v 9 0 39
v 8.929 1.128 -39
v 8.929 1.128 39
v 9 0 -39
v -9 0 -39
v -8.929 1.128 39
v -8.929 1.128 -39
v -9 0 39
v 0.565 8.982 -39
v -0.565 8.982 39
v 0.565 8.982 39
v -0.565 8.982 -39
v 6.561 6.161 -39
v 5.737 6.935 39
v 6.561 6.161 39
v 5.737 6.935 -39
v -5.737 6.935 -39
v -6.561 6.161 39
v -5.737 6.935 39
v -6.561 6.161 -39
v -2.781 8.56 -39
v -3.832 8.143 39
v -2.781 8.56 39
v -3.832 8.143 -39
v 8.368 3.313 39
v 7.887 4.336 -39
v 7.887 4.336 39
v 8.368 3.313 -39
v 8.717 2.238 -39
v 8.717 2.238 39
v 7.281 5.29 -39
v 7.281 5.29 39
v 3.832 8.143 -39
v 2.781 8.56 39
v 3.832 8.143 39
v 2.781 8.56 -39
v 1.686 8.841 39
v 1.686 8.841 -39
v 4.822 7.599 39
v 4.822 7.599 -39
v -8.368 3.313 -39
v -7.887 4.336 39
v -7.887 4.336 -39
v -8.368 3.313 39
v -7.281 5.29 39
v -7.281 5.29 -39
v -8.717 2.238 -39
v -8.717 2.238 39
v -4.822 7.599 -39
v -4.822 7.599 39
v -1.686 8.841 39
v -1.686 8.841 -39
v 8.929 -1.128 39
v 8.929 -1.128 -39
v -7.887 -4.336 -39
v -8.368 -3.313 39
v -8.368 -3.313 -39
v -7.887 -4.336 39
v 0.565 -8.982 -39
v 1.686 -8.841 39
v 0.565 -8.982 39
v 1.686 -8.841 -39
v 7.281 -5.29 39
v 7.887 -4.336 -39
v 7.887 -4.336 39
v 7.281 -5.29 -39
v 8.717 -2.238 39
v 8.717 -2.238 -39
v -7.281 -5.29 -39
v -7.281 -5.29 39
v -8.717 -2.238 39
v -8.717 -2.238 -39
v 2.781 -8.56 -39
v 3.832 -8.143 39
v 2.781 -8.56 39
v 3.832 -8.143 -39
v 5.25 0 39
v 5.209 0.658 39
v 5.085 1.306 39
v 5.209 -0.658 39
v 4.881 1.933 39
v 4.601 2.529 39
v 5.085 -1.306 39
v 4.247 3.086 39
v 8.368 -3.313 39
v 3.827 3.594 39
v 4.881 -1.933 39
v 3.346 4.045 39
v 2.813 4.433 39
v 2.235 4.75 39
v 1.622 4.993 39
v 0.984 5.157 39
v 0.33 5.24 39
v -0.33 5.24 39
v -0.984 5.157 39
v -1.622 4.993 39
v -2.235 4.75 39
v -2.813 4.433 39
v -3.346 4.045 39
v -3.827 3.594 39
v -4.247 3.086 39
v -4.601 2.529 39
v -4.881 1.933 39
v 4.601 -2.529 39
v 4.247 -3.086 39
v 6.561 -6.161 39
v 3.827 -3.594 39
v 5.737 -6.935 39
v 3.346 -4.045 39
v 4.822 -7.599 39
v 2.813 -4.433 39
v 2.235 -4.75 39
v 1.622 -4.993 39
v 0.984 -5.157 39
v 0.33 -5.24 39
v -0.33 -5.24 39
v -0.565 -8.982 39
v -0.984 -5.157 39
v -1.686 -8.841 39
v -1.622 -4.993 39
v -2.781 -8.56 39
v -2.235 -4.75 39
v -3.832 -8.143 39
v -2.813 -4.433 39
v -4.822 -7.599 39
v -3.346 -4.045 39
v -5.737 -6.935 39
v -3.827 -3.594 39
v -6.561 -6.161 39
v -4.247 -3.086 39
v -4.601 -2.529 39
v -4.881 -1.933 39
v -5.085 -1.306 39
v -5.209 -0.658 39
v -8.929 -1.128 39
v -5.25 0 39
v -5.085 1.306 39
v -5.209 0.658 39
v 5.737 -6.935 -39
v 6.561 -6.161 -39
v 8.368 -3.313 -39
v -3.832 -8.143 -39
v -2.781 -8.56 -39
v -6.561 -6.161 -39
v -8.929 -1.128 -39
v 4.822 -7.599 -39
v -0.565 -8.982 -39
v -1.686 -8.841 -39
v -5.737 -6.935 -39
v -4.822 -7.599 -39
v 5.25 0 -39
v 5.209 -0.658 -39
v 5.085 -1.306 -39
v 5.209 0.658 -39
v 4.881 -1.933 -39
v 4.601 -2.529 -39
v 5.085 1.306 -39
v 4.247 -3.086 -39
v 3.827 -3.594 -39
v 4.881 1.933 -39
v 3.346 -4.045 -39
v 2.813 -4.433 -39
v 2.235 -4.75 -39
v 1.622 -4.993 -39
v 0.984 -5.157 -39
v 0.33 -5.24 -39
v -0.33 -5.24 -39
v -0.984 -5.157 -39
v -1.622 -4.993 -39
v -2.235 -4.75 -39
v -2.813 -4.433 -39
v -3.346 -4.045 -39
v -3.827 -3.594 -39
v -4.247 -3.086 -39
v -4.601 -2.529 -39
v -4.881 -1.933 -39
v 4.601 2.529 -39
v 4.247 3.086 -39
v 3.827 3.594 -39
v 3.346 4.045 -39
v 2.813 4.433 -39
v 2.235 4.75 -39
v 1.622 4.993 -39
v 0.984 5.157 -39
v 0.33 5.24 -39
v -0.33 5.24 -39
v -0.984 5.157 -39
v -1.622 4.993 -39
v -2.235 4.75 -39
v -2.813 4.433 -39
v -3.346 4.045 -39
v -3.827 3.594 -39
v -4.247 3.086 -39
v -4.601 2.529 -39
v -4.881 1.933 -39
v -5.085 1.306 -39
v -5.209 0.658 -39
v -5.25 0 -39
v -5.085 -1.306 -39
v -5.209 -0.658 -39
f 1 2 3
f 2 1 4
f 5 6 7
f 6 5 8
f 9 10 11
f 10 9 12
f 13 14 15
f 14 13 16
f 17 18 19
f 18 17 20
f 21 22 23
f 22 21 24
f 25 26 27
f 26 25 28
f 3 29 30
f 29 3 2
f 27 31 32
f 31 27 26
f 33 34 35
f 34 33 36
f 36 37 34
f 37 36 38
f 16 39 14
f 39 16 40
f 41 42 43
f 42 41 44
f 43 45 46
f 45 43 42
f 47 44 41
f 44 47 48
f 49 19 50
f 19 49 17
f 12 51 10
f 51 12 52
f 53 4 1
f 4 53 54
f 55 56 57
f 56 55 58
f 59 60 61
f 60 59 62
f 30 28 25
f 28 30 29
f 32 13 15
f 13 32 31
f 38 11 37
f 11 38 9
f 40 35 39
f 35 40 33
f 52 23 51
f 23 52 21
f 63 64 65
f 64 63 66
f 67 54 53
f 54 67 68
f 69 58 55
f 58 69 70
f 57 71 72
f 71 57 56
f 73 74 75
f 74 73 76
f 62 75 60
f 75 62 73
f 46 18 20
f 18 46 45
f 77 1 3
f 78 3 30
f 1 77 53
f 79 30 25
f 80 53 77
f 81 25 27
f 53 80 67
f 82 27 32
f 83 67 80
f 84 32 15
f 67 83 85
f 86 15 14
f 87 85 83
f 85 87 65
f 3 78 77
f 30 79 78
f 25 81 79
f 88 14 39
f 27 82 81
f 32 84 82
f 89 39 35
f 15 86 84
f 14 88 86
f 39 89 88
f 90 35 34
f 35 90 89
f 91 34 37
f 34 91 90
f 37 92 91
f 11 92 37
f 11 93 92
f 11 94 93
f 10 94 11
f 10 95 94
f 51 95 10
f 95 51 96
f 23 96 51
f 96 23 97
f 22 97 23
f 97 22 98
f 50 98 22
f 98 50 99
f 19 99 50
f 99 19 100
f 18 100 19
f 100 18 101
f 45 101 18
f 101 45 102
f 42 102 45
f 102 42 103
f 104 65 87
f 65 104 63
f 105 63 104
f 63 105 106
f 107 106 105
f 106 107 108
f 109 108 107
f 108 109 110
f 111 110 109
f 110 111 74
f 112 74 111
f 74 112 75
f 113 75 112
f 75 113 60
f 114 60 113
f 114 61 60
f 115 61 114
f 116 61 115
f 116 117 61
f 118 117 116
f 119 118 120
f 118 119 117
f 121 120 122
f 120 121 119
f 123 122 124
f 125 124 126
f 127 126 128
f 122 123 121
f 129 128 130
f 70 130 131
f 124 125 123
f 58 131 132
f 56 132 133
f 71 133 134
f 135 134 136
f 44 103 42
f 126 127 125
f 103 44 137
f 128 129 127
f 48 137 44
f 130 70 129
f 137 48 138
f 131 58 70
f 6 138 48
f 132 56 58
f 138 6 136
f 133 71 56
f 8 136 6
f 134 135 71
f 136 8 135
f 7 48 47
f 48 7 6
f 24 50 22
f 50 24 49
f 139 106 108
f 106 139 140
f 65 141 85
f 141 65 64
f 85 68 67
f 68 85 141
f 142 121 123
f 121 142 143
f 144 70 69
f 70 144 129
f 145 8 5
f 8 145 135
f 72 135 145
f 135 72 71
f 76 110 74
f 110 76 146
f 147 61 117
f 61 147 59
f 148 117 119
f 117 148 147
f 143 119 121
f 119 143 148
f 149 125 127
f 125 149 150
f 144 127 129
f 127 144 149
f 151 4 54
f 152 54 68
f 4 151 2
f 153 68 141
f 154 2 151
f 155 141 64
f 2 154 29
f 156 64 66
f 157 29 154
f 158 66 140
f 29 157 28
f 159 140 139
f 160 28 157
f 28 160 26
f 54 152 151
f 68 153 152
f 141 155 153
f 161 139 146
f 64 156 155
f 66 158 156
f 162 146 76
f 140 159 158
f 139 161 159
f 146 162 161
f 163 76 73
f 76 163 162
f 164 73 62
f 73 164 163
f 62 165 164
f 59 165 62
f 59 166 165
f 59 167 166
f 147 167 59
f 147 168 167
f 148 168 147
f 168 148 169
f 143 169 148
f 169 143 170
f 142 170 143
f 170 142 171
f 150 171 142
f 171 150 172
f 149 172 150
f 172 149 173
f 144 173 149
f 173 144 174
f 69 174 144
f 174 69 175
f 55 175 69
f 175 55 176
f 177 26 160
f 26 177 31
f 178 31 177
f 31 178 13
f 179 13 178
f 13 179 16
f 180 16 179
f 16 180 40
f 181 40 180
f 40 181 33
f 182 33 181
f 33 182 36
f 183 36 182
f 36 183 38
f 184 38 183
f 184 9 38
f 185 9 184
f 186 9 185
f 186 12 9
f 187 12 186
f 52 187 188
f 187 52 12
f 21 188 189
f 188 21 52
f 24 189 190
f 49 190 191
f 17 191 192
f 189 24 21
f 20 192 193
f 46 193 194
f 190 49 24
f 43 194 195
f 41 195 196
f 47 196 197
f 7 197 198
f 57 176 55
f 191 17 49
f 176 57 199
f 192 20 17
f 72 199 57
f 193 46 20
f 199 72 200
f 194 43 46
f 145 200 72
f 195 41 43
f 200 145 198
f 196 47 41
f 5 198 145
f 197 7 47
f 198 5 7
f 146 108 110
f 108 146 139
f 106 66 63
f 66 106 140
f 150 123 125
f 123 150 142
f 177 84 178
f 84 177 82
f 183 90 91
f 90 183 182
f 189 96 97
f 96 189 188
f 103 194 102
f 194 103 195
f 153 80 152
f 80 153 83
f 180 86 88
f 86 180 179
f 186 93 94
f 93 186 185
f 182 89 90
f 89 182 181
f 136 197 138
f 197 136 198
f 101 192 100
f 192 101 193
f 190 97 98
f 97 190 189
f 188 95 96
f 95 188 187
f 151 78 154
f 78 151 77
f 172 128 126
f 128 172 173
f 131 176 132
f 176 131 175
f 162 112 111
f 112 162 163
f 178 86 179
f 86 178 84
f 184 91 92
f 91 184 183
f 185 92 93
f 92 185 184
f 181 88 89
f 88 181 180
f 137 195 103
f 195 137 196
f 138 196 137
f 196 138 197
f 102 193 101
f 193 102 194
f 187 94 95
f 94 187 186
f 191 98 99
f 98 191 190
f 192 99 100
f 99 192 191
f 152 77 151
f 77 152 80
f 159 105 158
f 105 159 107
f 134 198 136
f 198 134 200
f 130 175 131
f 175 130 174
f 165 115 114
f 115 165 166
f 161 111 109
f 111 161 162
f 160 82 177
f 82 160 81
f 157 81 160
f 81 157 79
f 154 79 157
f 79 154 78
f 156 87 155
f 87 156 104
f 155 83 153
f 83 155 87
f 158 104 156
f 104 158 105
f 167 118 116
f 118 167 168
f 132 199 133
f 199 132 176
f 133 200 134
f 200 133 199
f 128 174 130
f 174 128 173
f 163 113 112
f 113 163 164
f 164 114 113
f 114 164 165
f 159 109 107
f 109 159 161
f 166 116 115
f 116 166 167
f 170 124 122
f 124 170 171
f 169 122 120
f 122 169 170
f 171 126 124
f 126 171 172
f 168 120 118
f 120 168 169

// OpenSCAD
$fn = 50;


difference() {
	union() {
		translate(v = [0, 0, -39.0000000000]) {
			cylinder(h = 78, r = 9.0000000000);
		}
	}
	union() {
		translate(v = [0, 0, -100.0000000000]) {
			cylinder(h = 200, r = 5.2500000000);
		}
	}
}
